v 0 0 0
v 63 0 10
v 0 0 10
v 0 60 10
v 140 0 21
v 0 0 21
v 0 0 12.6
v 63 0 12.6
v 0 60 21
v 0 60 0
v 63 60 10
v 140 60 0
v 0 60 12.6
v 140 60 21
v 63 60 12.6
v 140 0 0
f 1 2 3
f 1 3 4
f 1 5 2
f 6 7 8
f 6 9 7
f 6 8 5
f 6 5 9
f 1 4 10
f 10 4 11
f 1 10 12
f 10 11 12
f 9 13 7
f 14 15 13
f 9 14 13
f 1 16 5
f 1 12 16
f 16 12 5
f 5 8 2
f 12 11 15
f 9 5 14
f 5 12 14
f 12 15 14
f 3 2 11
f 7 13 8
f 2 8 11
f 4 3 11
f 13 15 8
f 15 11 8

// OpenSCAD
$fn = 100;
difference() {
    cube([140, 60, 21]);
    translate([0, 0, 10]) cube([63, 60, 2.6]);
}
